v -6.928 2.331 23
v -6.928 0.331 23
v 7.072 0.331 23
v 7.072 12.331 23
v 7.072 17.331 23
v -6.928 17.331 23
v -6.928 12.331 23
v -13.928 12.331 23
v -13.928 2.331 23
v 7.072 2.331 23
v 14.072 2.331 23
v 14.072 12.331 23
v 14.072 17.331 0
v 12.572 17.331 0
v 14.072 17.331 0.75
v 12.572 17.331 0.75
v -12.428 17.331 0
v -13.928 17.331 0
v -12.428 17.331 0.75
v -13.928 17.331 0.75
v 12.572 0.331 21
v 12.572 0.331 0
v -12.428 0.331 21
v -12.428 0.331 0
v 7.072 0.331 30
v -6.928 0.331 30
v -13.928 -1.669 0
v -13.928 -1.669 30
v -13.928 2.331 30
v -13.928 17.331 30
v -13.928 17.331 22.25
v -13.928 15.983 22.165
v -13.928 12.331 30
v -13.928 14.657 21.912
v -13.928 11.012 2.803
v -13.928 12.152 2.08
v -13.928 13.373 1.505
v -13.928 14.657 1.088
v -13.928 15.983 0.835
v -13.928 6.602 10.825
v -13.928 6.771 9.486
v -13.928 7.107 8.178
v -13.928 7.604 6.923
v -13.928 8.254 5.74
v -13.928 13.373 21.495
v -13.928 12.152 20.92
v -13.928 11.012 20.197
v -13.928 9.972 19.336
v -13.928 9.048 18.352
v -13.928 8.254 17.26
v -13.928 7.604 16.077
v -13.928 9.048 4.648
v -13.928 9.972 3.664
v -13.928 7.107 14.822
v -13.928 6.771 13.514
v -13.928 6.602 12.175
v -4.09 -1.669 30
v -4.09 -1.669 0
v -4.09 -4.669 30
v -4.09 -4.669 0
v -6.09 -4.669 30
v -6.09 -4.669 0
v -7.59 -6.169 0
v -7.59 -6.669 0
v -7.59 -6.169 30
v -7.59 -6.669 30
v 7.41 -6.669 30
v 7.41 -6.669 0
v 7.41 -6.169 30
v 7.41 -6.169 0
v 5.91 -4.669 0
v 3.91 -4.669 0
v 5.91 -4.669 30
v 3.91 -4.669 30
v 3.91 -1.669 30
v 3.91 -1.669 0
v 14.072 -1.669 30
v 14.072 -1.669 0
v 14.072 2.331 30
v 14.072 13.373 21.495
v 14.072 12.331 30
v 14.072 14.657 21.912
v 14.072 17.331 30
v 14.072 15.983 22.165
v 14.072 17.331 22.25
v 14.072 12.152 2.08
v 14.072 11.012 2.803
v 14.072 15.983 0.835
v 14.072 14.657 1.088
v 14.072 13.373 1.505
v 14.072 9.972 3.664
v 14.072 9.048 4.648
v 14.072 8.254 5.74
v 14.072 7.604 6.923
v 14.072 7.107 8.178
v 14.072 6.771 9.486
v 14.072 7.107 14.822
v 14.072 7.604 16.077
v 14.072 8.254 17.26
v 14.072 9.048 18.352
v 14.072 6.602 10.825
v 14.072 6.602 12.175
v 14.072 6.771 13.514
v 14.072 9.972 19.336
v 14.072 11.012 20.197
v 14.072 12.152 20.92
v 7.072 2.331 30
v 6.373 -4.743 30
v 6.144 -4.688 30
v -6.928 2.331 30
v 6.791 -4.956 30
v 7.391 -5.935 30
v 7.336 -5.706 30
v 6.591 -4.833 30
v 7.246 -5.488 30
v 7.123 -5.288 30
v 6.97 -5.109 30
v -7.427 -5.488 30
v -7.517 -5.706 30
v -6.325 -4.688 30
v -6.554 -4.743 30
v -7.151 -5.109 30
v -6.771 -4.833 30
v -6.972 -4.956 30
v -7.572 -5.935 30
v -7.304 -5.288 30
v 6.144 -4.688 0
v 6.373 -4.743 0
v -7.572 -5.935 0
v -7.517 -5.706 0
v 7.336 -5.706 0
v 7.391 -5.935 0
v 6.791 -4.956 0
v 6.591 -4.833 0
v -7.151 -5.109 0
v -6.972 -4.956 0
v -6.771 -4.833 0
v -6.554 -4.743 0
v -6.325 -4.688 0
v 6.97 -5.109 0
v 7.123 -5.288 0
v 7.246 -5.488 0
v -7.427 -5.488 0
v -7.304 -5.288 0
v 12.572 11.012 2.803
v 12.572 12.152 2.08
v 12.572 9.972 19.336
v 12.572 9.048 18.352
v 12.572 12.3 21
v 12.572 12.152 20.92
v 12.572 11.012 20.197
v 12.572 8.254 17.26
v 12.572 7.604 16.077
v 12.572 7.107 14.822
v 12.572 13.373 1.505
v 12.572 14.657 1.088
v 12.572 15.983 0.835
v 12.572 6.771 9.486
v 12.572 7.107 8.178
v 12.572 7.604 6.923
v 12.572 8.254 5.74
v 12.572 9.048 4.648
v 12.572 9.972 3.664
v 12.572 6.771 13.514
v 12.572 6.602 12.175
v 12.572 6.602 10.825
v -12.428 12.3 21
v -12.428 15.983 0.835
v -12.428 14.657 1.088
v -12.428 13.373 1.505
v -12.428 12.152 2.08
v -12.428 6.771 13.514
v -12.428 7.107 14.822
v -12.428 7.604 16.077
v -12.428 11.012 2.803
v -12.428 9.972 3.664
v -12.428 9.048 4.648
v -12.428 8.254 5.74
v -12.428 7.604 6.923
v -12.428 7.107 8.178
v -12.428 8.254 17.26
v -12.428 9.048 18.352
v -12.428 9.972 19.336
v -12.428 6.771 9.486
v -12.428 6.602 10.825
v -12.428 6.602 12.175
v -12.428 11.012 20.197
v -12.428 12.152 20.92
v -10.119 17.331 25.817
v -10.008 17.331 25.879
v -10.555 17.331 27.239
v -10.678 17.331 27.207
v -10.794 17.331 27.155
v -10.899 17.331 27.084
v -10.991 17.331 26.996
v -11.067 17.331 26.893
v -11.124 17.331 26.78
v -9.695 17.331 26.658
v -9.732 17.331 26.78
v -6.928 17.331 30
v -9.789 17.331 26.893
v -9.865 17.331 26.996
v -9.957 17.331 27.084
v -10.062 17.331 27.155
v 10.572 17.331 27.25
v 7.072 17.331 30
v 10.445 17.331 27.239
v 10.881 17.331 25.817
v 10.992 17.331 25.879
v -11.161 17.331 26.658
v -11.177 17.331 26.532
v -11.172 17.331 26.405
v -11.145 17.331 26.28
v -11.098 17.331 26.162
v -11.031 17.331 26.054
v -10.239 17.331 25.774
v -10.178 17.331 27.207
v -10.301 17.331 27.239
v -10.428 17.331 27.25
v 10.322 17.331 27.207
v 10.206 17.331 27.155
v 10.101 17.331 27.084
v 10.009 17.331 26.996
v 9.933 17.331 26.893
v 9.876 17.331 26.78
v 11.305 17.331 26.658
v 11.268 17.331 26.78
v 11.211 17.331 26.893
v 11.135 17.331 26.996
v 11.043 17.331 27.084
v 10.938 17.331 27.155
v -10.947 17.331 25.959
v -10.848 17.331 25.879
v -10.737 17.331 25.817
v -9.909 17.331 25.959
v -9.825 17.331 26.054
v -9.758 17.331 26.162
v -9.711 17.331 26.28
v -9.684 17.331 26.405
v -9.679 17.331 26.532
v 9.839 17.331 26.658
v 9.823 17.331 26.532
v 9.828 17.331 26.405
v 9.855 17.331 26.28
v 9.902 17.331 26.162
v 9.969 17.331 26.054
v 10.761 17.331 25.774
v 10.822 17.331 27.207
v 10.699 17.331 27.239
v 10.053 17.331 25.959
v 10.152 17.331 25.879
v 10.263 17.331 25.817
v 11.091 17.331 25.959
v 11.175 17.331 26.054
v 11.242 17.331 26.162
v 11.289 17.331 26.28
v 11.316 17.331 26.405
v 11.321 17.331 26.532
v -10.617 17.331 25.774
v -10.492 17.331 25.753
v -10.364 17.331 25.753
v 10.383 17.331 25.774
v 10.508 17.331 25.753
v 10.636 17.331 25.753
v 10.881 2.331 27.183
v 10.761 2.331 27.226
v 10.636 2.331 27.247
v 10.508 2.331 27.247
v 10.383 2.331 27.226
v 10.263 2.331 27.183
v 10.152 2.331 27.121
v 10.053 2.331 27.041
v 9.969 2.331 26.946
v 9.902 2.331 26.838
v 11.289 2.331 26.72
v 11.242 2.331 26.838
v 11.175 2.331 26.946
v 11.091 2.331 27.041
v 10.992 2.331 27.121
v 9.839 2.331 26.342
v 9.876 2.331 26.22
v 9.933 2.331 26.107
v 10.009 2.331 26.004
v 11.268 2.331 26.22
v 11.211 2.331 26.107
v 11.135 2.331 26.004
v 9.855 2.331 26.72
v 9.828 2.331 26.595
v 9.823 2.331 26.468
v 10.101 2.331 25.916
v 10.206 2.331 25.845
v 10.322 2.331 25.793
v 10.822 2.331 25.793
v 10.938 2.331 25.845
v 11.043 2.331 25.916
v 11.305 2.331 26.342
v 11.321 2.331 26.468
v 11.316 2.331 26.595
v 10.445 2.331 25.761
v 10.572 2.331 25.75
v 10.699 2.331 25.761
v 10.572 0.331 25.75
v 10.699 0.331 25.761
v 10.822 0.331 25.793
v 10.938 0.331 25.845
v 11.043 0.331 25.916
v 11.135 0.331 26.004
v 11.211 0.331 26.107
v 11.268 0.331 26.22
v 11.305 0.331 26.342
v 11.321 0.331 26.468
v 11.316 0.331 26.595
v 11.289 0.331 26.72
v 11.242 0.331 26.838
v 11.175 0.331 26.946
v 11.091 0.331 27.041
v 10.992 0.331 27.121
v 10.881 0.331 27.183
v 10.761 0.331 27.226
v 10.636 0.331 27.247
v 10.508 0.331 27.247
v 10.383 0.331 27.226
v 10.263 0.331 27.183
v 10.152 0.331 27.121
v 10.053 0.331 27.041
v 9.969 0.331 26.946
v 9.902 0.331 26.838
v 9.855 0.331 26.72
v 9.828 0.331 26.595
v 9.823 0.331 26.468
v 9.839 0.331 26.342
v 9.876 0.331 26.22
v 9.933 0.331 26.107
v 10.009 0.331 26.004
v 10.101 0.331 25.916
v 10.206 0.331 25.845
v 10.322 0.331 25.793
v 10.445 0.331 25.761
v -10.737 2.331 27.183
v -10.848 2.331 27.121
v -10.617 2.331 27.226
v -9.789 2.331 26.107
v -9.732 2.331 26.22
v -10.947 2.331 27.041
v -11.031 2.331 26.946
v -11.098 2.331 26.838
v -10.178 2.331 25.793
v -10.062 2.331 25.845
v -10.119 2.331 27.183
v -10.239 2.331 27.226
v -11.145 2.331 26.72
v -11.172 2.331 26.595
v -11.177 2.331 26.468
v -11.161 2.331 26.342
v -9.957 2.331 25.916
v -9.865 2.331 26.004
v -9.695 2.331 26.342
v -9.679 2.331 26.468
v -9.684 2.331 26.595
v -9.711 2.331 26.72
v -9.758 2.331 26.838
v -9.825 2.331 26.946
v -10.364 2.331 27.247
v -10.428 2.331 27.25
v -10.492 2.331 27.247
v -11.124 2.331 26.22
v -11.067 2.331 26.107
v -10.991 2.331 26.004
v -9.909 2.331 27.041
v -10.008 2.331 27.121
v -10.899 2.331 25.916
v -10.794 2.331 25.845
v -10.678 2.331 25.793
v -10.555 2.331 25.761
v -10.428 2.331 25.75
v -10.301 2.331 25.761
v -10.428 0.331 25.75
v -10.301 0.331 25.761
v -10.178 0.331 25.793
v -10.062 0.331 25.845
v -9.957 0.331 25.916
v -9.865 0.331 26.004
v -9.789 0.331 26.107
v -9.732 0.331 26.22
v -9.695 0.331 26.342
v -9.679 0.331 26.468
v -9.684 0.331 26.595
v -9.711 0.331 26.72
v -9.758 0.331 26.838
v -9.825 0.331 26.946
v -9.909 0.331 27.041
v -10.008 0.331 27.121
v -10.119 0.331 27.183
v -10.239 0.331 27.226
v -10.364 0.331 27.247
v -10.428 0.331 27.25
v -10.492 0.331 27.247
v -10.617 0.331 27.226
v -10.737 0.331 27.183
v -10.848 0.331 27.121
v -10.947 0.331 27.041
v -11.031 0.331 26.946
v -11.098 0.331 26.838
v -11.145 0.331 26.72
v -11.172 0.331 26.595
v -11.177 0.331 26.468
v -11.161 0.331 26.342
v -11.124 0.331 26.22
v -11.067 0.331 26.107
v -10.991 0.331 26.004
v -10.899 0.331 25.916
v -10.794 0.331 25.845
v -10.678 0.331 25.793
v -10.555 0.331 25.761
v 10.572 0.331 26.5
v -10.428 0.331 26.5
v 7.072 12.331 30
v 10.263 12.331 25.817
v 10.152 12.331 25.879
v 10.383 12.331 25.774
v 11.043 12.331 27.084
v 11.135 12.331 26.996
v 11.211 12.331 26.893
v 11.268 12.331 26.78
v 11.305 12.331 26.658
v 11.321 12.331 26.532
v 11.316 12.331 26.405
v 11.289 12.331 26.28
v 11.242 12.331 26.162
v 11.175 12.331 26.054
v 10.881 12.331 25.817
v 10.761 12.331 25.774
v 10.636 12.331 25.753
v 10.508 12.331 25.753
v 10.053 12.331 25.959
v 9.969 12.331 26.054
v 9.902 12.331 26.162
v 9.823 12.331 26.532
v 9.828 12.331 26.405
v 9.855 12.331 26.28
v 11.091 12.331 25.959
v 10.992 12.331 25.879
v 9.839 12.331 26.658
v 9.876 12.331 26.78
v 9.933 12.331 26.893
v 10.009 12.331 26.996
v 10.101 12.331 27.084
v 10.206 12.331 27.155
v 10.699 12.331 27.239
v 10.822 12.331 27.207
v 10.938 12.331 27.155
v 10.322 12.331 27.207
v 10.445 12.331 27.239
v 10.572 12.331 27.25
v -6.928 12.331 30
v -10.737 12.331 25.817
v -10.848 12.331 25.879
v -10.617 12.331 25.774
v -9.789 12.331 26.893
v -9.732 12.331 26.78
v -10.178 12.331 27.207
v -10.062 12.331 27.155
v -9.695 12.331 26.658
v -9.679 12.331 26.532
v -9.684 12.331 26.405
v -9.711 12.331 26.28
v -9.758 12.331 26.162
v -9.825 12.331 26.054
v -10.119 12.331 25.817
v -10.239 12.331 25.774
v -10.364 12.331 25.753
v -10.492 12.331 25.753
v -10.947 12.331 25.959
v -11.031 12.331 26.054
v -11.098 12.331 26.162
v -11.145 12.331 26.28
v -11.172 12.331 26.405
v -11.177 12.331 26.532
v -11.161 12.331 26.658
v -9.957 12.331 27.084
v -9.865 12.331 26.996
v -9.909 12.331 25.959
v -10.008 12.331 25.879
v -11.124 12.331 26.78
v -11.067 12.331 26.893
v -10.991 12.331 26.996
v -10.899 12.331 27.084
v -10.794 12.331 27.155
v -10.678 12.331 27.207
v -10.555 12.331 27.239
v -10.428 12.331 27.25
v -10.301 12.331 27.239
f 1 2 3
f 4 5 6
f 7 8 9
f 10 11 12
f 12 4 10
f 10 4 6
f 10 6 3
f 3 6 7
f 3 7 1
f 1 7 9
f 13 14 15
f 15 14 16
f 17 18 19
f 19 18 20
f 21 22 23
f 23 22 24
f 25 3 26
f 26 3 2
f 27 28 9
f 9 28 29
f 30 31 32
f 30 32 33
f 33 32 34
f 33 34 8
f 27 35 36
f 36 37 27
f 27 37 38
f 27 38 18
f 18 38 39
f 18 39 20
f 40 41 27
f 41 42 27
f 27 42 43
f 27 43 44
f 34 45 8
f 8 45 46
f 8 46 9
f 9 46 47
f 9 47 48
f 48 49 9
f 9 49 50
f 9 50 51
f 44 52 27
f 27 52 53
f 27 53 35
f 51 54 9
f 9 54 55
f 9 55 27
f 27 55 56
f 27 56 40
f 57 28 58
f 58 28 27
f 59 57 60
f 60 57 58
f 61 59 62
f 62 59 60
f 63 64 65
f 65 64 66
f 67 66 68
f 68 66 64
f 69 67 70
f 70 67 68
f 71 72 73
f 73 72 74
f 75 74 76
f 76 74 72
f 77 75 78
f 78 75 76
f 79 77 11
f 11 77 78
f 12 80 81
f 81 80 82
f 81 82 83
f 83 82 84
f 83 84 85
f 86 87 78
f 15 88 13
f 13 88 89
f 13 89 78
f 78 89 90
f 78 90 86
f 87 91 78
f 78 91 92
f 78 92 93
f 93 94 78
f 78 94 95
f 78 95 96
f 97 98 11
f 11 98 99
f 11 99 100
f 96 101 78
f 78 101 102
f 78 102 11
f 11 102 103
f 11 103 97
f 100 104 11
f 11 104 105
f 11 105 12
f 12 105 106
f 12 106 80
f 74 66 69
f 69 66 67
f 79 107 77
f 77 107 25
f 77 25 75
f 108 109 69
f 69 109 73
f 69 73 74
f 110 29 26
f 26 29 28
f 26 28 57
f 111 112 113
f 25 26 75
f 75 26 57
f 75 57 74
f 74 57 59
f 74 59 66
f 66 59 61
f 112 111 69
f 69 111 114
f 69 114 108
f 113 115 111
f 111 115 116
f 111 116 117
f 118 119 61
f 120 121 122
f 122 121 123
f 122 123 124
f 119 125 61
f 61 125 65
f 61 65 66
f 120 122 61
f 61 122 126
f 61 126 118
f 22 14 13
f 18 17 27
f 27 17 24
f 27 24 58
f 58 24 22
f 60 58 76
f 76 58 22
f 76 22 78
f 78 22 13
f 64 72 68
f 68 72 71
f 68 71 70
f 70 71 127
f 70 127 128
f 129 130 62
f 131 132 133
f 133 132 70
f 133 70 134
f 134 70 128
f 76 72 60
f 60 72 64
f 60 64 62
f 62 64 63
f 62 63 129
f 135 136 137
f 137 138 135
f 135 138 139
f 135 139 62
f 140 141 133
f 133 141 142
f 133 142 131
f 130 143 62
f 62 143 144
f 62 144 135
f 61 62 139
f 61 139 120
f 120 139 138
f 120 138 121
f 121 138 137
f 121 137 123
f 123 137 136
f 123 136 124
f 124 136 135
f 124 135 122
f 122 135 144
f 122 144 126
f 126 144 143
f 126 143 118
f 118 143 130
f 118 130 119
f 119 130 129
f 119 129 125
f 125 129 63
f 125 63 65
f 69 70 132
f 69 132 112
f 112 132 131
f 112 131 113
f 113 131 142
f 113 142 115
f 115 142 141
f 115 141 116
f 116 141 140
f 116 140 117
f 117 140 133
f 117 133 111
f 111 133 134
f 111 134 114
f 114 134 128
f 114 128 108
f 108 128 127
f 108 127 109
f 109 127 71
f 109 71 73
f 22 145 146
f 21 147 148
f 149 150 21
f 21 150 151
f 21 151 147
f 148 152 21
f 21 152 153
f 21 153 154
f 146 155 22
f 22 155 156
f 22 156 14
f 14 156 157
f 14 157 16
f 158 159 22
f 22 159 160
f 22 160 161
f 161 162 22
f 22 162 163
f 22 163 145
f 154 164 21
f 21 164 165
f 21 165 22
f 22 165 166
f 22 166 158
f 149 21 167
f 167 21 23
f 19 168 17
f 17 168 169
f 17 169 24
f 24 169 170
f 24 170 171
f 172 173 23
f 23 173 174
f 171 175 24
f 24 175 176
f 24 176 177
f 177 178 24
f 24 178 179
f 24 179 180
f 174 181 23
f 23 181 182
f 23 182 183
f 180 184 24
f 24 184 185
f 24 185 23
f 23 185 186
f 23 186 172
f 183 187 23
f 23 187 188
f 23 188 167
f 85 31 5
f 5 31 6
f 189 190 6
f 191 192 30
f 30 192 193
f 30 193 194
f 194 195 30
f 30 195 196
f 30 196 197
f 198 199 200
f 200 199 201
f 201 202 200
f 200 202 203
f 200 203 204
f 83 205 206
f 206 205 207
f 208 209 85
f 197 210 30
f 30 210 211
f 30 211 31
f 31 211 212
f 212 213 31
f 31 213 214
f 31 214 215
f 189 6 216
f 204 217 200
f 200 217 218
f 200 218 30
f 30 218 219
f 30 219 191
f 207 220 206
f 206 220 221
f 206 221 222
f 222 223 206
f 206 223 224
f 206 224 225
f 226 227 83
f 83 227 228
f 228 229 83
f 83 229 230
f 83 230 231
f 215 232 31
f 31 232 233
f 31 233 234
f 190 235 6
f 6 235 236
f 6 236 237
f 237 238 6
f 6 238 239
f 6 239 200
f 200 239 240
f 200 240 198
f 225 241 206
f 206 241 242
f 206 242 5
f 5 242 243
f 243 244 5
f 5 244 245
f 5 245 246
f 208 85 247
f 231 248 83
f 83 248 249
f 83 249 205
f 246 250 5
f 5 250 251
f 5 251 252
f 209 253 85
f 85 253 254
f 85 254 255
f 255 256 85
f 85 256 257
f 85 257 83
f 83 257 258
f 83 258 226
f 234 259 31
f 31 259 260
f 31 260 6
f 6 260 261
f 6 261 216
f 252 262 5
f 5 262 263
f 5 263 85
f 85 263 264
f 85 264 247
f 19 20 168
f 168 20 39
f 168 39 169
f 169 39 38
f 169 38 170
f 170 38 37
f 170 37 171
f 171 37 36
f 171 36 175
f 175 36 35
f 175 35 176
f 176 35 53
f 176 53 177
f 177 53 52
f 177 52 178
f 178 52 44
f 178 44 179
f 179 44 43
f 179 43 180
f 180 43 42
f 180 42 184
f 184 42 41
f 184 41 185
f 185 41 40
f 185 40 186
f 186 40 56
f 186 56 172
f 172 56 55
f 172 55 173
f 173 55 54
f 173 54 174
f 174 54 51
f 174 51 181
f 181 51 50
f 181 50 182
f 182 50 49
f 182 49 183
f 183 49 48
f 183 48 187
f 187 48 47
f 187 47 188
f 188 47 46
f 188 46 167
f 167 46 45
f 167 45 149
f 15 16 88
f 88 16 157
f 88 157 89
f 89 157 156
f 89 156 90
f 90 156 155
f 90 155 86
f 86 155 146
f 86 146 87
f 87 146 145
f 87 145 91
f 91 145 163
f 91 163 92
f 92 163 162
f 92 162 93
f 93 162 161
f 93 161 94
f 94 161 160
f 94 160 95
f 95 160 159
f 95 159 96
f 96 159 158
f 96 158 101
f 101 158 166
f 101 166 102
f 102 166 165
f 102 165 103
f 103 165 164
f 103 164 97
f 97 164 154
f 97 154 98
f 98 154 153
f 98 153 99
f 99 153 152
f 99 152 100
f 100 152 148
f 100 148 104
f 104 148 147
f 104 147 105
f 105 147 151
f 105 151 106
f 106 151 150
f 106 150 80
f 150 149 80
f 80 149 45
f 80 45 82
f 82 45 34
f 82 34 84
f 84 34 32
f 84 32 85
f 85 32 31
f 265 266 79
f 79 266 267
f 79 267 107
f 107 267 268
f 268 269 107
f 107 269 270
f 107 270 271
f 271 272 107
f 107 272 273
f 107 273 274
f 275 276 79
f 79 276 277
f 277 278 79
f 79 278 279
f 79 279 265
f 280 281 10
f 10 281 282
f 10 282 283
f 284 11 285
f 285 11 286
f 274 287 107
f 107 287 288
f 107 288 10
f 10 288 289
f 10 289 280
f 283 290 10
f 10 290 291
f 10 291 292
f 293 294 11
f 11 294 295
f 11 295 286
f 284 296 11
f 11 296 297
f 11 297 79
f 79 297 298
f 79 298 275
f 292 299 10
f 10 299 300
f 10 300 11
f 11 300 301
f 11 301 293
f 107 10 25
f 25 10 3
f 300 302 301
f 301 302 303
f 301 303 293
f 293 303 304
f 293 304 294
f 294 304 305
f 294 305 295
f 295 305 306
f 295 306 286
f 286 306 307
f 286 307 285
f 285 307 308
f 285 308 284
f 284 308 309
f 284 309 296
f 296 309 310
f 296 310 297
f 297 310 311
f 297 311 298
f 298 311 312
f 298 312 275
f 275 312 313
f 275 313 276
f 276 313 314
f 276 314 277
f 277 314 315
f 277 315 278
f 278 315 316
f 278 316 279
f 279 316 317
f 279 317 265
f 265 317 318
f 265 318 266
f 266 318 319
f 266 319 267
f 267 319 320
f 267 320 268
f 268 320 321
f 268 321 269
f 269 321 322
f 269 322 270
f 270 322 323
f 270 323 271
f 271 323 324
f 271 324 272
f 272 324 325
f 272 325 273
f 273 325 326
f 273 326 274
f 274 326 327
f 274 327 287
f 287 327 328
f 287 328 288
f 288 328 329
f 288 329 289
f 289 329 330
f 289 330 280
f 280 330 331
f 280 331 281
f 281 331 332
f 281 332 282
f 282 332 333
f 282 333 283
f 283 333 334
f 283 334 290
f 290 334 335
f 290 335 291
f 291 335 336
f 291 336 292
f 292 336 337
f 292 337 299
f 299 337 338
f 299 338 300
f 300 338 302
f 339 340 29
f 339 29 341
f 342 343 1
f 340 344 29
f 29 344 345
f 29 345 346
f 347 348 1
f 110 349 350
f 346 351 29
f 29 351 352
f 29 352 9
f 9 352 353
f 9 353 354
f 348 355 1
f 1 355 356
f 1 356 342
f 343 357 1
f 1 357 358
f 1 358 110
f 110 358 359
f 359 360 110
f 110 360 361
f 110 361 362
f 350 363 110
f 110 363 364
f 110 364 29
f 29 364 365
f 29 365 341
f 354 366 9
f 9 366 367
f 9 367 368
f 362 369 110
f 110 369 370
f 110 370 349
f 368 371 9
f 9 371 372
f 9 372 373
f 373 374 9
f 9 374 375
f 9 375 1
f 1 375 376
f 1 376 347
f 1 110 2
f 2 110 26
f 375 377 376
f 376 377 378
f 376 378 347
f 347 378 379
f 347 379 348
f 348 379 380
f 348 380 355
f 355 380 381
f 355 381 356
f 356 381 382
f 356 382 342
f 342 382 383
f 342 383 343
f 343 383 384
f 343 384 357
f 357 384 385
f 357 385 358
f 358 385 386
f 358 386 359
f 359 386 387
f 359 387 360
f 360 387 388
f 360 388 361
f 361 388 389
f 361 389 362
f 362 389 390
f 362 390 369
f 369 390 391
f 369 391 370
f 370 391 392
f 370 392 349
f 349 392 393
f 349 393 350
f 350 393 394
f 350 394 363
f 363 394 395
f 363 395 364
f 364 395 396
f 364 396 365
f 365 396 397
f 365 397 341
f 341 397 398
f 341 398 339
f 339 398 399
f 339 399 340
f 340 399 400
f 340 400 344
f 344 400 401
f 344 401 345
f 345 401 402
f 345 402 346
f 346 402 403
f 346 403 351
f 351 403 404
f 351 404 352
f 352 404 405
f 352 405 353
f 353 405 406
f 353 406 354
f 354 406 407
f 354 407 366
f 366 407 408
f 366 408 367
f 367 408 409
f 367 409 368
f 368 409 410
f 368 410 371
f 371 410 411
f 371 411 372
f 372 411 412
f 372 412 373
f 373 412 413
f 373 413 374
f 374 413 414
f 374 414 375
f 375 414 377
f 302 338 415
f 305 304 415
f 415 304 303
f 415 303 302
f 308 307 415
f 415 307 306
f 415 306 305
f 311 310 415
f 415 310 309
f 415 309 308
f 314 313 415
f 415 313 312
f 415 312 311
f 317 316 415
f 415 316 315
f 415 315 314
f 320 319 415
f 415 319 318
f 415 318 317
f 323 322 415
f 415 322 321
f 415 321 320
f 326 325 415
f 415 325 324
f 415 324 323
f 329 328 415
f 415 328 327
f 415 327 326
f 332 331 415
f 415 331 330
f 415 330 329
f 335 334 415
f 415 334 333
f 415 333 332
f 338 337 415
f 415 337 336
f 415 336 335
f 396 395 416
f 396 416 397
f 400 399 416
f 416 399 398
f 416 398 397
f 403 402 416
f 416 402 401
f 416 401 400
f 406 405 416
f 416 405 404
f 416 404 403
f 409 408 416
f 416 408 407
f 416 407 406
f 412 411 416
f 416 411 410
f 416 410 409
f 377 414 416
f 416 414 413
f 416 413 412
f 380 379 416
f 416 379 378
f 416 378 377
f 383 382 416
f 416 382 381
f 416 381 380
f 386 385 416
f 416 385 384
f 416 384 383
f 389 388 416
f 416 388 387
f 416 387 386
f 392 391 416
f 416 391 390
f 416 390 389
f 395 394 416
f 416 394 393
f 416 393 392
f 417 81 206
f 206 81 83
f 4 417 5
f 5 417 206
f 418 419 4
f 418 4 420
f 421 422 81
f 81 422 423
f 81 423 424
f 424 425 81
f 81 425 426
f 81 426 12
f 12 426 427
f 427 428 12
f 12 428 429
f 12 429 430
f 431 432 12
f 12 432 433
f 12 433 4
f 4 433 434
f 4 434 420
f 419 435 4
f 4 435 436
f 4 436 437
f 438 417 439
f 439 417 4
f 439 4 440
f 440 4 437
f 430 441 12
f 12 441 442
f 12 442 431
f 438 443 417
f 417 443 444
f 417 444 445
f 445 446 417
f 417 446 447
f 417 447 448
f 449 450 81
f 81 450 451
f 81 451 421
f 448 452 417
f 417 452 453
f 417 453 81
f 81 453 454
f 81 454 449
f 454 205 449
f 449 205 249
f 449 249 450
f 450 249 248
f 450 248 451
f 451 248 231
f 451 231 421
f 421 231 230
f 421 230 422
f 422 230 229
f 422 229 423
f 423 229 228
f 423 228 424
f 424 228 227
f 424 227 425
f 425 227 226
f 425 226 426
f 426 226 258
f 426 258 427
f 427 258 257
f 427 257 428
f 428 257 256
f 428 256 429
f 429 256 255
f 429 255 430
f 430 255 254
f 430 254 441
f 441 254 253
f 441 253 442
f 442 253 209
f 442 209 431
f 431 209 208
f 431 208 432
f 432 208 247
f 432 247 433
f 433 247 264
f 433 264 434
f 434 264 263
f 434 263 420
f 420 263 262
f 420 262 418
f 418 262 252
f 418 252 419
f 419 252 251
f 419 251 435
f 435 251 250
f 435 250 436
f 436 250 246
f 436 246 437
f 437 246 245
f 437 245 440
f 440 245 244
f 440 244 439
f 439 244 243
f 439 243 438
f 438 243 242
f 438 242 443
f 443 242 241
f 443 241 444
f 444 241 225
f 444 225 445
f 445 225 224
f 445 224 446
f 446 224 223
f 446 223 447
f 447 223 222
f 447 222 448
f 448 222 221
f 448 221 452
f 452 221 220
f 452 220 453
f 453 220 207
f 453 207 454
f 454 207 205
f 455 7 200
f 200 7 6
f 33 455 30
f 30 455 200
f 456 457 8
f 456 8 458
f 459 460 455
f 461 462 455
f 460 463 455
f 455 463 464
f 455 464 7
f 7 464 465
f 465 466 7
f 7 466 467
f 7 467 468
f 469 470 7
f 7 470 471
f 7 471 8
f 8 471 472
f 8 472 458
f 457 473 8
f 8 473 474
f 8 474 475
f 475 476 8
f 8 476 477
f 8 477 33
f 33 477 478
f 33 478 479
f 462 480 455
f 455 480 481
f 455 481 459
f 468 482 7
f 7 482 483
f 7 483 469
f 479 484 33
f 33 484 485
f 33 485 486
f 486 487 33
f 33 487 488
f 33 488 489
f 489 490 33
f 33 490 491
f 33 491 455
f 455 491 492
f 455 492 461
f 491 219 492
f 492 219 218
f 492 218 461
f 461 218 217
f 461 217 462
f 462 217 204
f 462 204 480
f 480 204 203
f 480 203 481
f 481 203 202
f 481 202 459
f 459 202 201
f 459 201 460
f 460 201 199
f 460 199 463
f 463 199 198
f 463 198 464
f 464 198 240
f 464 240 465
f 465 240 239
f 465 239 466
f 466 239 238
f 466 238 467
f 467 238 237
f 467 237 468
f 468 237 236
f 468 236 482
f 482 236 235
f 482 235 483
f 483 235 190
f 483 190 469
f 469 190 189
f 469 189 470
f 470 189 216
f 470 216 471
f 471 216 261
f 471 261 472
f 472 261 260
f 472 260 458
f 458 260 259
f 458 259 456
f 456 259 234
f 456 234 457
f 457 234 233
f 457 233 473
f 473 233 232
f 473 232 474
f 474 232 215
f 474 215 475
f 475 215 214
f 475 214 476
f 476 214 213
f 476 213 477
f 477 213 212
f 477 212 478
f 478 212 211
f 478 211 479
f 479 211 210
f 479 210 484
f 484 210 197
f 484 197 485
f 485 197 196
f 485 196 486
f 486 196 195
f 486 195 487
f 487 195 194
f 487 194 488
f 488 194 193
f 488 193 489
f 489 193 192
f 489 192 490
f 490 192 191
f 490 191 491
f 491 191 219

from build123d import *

# Parameters (mm, degrees)
EXTRUDE_1_DEPTH     = 30
FILLET_1_R          = 1.5
EXTRUDE_3_DEPTH     = 17
SKETCH_5_R          = 10.75
CUT_EXTRUDE_2_DEPTH = 29
SKETCH_6_W          = 7
SKETCH_6_H          = 7
SKETCH_6_R          = 0.75
EXTRUDE_4_DEPTH     = 2
EXTRUDE_START       = 15
SKETCH_8_W          = 7
SKETCH_8_H          = 7
SKETCH_8_R          = 0.75
EXTRUDE_5_DEPTH     = 5


with BuildPart() as part:
    # 草图1 → 凸台-拉伸1 (new body)
    with BuildSketch(Plane.XY):
        Polygon((-13.927970183, -1.669251604), (-4.090414819, -1.669251604), (-4.090414819, -4.669251604), (-7.590414819, -4.669251604), (-7.590414819, -6.669251604), (7.409585181, -6.669251604), (7.409585181, -4.669251604), (3.909585181, -4.669251604), (3.909585181, -1.669251604), (14.072029817, -1.669251604), (14.072029817, 0.330748396), (-13.927970183, 0.330748396), align=None)
    extrude(amount=EXTRUDE_1_DEPTH)

    # 圆角1
    fillet_1_edges = [part.edges().sort_by_distance(p)[0] for p in [
        (7.409585181, -4.669251604, 15),
        (-7.590414819, -4.669251604, 15),
    ]]
    fillet(fillet_1_edges, radius=FILLET_1_R)

    # 草图2 → 凸台-拉伸3 (add)
    with BuildSketch(Plane(origin=(0, 0.330748396, 0), x_dir=(1, 0, 0), z_dir=(0, 1, 0))):
        Polygon((-13.927970183, 0), (-12.427970183, 0), (-12.427970183, -21), (12.572029817, -21), (12.572029817, 0), (14.072029817, 0), (14.072029817, -21), (14.072029817, -23), (-13.927970183, -23), (-13.927970183, -21), align=None)
    extrude(amount=EXTRUDE_3_DEPTH)

    # 草图5 → 切除-拉伸2 (cut, through all)
    with BuildSketch(Plane.ZY.offset(13.927970183)):
        with Locations((11.5, 17.330748396)):
            Circle(SKETCH_5_R)
    extrude(amount=-CUT_EXTRUDE_2_DEPTH, mode=Mode.SUBTRACT)

    # 草图6 → 凸台-拉伸4 (add)
    with BuildSketch(Plane(origin=(0, 0.330748396, 0), x_dir=(1, 0, 0), z_dir=(0, 1, 0))):
        with Locations((-10.427970183, -26.5)):
            Rectangle(SKETCH_6_W, SKETCH_6_H)
        with Locations((-10.427970183, -26.5)):
            Circle(SKETCH_6_R, mode=Mode.SUBTRACT)
        with Locations((10.572029817, -26.5)):
            Rectangle(SKETCH_6_W, SKETCH_6_H)
        with Locations((10.572029817, -26.5)):
            Circle(SKETCH_6_R, mode=Mode.SUBTRACT)
    extrude(amount=EXTRUDE_4_DEPTH)

    # 草图8 → 凸台-拉伸5 (add)
    with BuildSketch(Plane(origin=(0, 2.330748396, 0), x_dir=(1, 0, 0), z_dir=(0, 1, 0)).offset(EXTRUDE_START)):
        with Locations((-10.427970183, -26.5)):
            Rectangle(SKETCH_8_W, SKETCH_8_H)
        with Locations((-10.427970183, -26.5)):
            Circle(SKETCH_8_R, mode=Mode.SUBTRACT)
        with Locations((10.572029817, -26.5)):
            Rectangle(SKETCH_8_W, SKETCH_8_H)
        with Locations((10.572029817, -26.5)):
            Circle(SKETCH_8_R, mode=Mode.SUBTRACT)
    extrude(amount=-EXTRUDE_5_DEPTH)


solid = part.part
